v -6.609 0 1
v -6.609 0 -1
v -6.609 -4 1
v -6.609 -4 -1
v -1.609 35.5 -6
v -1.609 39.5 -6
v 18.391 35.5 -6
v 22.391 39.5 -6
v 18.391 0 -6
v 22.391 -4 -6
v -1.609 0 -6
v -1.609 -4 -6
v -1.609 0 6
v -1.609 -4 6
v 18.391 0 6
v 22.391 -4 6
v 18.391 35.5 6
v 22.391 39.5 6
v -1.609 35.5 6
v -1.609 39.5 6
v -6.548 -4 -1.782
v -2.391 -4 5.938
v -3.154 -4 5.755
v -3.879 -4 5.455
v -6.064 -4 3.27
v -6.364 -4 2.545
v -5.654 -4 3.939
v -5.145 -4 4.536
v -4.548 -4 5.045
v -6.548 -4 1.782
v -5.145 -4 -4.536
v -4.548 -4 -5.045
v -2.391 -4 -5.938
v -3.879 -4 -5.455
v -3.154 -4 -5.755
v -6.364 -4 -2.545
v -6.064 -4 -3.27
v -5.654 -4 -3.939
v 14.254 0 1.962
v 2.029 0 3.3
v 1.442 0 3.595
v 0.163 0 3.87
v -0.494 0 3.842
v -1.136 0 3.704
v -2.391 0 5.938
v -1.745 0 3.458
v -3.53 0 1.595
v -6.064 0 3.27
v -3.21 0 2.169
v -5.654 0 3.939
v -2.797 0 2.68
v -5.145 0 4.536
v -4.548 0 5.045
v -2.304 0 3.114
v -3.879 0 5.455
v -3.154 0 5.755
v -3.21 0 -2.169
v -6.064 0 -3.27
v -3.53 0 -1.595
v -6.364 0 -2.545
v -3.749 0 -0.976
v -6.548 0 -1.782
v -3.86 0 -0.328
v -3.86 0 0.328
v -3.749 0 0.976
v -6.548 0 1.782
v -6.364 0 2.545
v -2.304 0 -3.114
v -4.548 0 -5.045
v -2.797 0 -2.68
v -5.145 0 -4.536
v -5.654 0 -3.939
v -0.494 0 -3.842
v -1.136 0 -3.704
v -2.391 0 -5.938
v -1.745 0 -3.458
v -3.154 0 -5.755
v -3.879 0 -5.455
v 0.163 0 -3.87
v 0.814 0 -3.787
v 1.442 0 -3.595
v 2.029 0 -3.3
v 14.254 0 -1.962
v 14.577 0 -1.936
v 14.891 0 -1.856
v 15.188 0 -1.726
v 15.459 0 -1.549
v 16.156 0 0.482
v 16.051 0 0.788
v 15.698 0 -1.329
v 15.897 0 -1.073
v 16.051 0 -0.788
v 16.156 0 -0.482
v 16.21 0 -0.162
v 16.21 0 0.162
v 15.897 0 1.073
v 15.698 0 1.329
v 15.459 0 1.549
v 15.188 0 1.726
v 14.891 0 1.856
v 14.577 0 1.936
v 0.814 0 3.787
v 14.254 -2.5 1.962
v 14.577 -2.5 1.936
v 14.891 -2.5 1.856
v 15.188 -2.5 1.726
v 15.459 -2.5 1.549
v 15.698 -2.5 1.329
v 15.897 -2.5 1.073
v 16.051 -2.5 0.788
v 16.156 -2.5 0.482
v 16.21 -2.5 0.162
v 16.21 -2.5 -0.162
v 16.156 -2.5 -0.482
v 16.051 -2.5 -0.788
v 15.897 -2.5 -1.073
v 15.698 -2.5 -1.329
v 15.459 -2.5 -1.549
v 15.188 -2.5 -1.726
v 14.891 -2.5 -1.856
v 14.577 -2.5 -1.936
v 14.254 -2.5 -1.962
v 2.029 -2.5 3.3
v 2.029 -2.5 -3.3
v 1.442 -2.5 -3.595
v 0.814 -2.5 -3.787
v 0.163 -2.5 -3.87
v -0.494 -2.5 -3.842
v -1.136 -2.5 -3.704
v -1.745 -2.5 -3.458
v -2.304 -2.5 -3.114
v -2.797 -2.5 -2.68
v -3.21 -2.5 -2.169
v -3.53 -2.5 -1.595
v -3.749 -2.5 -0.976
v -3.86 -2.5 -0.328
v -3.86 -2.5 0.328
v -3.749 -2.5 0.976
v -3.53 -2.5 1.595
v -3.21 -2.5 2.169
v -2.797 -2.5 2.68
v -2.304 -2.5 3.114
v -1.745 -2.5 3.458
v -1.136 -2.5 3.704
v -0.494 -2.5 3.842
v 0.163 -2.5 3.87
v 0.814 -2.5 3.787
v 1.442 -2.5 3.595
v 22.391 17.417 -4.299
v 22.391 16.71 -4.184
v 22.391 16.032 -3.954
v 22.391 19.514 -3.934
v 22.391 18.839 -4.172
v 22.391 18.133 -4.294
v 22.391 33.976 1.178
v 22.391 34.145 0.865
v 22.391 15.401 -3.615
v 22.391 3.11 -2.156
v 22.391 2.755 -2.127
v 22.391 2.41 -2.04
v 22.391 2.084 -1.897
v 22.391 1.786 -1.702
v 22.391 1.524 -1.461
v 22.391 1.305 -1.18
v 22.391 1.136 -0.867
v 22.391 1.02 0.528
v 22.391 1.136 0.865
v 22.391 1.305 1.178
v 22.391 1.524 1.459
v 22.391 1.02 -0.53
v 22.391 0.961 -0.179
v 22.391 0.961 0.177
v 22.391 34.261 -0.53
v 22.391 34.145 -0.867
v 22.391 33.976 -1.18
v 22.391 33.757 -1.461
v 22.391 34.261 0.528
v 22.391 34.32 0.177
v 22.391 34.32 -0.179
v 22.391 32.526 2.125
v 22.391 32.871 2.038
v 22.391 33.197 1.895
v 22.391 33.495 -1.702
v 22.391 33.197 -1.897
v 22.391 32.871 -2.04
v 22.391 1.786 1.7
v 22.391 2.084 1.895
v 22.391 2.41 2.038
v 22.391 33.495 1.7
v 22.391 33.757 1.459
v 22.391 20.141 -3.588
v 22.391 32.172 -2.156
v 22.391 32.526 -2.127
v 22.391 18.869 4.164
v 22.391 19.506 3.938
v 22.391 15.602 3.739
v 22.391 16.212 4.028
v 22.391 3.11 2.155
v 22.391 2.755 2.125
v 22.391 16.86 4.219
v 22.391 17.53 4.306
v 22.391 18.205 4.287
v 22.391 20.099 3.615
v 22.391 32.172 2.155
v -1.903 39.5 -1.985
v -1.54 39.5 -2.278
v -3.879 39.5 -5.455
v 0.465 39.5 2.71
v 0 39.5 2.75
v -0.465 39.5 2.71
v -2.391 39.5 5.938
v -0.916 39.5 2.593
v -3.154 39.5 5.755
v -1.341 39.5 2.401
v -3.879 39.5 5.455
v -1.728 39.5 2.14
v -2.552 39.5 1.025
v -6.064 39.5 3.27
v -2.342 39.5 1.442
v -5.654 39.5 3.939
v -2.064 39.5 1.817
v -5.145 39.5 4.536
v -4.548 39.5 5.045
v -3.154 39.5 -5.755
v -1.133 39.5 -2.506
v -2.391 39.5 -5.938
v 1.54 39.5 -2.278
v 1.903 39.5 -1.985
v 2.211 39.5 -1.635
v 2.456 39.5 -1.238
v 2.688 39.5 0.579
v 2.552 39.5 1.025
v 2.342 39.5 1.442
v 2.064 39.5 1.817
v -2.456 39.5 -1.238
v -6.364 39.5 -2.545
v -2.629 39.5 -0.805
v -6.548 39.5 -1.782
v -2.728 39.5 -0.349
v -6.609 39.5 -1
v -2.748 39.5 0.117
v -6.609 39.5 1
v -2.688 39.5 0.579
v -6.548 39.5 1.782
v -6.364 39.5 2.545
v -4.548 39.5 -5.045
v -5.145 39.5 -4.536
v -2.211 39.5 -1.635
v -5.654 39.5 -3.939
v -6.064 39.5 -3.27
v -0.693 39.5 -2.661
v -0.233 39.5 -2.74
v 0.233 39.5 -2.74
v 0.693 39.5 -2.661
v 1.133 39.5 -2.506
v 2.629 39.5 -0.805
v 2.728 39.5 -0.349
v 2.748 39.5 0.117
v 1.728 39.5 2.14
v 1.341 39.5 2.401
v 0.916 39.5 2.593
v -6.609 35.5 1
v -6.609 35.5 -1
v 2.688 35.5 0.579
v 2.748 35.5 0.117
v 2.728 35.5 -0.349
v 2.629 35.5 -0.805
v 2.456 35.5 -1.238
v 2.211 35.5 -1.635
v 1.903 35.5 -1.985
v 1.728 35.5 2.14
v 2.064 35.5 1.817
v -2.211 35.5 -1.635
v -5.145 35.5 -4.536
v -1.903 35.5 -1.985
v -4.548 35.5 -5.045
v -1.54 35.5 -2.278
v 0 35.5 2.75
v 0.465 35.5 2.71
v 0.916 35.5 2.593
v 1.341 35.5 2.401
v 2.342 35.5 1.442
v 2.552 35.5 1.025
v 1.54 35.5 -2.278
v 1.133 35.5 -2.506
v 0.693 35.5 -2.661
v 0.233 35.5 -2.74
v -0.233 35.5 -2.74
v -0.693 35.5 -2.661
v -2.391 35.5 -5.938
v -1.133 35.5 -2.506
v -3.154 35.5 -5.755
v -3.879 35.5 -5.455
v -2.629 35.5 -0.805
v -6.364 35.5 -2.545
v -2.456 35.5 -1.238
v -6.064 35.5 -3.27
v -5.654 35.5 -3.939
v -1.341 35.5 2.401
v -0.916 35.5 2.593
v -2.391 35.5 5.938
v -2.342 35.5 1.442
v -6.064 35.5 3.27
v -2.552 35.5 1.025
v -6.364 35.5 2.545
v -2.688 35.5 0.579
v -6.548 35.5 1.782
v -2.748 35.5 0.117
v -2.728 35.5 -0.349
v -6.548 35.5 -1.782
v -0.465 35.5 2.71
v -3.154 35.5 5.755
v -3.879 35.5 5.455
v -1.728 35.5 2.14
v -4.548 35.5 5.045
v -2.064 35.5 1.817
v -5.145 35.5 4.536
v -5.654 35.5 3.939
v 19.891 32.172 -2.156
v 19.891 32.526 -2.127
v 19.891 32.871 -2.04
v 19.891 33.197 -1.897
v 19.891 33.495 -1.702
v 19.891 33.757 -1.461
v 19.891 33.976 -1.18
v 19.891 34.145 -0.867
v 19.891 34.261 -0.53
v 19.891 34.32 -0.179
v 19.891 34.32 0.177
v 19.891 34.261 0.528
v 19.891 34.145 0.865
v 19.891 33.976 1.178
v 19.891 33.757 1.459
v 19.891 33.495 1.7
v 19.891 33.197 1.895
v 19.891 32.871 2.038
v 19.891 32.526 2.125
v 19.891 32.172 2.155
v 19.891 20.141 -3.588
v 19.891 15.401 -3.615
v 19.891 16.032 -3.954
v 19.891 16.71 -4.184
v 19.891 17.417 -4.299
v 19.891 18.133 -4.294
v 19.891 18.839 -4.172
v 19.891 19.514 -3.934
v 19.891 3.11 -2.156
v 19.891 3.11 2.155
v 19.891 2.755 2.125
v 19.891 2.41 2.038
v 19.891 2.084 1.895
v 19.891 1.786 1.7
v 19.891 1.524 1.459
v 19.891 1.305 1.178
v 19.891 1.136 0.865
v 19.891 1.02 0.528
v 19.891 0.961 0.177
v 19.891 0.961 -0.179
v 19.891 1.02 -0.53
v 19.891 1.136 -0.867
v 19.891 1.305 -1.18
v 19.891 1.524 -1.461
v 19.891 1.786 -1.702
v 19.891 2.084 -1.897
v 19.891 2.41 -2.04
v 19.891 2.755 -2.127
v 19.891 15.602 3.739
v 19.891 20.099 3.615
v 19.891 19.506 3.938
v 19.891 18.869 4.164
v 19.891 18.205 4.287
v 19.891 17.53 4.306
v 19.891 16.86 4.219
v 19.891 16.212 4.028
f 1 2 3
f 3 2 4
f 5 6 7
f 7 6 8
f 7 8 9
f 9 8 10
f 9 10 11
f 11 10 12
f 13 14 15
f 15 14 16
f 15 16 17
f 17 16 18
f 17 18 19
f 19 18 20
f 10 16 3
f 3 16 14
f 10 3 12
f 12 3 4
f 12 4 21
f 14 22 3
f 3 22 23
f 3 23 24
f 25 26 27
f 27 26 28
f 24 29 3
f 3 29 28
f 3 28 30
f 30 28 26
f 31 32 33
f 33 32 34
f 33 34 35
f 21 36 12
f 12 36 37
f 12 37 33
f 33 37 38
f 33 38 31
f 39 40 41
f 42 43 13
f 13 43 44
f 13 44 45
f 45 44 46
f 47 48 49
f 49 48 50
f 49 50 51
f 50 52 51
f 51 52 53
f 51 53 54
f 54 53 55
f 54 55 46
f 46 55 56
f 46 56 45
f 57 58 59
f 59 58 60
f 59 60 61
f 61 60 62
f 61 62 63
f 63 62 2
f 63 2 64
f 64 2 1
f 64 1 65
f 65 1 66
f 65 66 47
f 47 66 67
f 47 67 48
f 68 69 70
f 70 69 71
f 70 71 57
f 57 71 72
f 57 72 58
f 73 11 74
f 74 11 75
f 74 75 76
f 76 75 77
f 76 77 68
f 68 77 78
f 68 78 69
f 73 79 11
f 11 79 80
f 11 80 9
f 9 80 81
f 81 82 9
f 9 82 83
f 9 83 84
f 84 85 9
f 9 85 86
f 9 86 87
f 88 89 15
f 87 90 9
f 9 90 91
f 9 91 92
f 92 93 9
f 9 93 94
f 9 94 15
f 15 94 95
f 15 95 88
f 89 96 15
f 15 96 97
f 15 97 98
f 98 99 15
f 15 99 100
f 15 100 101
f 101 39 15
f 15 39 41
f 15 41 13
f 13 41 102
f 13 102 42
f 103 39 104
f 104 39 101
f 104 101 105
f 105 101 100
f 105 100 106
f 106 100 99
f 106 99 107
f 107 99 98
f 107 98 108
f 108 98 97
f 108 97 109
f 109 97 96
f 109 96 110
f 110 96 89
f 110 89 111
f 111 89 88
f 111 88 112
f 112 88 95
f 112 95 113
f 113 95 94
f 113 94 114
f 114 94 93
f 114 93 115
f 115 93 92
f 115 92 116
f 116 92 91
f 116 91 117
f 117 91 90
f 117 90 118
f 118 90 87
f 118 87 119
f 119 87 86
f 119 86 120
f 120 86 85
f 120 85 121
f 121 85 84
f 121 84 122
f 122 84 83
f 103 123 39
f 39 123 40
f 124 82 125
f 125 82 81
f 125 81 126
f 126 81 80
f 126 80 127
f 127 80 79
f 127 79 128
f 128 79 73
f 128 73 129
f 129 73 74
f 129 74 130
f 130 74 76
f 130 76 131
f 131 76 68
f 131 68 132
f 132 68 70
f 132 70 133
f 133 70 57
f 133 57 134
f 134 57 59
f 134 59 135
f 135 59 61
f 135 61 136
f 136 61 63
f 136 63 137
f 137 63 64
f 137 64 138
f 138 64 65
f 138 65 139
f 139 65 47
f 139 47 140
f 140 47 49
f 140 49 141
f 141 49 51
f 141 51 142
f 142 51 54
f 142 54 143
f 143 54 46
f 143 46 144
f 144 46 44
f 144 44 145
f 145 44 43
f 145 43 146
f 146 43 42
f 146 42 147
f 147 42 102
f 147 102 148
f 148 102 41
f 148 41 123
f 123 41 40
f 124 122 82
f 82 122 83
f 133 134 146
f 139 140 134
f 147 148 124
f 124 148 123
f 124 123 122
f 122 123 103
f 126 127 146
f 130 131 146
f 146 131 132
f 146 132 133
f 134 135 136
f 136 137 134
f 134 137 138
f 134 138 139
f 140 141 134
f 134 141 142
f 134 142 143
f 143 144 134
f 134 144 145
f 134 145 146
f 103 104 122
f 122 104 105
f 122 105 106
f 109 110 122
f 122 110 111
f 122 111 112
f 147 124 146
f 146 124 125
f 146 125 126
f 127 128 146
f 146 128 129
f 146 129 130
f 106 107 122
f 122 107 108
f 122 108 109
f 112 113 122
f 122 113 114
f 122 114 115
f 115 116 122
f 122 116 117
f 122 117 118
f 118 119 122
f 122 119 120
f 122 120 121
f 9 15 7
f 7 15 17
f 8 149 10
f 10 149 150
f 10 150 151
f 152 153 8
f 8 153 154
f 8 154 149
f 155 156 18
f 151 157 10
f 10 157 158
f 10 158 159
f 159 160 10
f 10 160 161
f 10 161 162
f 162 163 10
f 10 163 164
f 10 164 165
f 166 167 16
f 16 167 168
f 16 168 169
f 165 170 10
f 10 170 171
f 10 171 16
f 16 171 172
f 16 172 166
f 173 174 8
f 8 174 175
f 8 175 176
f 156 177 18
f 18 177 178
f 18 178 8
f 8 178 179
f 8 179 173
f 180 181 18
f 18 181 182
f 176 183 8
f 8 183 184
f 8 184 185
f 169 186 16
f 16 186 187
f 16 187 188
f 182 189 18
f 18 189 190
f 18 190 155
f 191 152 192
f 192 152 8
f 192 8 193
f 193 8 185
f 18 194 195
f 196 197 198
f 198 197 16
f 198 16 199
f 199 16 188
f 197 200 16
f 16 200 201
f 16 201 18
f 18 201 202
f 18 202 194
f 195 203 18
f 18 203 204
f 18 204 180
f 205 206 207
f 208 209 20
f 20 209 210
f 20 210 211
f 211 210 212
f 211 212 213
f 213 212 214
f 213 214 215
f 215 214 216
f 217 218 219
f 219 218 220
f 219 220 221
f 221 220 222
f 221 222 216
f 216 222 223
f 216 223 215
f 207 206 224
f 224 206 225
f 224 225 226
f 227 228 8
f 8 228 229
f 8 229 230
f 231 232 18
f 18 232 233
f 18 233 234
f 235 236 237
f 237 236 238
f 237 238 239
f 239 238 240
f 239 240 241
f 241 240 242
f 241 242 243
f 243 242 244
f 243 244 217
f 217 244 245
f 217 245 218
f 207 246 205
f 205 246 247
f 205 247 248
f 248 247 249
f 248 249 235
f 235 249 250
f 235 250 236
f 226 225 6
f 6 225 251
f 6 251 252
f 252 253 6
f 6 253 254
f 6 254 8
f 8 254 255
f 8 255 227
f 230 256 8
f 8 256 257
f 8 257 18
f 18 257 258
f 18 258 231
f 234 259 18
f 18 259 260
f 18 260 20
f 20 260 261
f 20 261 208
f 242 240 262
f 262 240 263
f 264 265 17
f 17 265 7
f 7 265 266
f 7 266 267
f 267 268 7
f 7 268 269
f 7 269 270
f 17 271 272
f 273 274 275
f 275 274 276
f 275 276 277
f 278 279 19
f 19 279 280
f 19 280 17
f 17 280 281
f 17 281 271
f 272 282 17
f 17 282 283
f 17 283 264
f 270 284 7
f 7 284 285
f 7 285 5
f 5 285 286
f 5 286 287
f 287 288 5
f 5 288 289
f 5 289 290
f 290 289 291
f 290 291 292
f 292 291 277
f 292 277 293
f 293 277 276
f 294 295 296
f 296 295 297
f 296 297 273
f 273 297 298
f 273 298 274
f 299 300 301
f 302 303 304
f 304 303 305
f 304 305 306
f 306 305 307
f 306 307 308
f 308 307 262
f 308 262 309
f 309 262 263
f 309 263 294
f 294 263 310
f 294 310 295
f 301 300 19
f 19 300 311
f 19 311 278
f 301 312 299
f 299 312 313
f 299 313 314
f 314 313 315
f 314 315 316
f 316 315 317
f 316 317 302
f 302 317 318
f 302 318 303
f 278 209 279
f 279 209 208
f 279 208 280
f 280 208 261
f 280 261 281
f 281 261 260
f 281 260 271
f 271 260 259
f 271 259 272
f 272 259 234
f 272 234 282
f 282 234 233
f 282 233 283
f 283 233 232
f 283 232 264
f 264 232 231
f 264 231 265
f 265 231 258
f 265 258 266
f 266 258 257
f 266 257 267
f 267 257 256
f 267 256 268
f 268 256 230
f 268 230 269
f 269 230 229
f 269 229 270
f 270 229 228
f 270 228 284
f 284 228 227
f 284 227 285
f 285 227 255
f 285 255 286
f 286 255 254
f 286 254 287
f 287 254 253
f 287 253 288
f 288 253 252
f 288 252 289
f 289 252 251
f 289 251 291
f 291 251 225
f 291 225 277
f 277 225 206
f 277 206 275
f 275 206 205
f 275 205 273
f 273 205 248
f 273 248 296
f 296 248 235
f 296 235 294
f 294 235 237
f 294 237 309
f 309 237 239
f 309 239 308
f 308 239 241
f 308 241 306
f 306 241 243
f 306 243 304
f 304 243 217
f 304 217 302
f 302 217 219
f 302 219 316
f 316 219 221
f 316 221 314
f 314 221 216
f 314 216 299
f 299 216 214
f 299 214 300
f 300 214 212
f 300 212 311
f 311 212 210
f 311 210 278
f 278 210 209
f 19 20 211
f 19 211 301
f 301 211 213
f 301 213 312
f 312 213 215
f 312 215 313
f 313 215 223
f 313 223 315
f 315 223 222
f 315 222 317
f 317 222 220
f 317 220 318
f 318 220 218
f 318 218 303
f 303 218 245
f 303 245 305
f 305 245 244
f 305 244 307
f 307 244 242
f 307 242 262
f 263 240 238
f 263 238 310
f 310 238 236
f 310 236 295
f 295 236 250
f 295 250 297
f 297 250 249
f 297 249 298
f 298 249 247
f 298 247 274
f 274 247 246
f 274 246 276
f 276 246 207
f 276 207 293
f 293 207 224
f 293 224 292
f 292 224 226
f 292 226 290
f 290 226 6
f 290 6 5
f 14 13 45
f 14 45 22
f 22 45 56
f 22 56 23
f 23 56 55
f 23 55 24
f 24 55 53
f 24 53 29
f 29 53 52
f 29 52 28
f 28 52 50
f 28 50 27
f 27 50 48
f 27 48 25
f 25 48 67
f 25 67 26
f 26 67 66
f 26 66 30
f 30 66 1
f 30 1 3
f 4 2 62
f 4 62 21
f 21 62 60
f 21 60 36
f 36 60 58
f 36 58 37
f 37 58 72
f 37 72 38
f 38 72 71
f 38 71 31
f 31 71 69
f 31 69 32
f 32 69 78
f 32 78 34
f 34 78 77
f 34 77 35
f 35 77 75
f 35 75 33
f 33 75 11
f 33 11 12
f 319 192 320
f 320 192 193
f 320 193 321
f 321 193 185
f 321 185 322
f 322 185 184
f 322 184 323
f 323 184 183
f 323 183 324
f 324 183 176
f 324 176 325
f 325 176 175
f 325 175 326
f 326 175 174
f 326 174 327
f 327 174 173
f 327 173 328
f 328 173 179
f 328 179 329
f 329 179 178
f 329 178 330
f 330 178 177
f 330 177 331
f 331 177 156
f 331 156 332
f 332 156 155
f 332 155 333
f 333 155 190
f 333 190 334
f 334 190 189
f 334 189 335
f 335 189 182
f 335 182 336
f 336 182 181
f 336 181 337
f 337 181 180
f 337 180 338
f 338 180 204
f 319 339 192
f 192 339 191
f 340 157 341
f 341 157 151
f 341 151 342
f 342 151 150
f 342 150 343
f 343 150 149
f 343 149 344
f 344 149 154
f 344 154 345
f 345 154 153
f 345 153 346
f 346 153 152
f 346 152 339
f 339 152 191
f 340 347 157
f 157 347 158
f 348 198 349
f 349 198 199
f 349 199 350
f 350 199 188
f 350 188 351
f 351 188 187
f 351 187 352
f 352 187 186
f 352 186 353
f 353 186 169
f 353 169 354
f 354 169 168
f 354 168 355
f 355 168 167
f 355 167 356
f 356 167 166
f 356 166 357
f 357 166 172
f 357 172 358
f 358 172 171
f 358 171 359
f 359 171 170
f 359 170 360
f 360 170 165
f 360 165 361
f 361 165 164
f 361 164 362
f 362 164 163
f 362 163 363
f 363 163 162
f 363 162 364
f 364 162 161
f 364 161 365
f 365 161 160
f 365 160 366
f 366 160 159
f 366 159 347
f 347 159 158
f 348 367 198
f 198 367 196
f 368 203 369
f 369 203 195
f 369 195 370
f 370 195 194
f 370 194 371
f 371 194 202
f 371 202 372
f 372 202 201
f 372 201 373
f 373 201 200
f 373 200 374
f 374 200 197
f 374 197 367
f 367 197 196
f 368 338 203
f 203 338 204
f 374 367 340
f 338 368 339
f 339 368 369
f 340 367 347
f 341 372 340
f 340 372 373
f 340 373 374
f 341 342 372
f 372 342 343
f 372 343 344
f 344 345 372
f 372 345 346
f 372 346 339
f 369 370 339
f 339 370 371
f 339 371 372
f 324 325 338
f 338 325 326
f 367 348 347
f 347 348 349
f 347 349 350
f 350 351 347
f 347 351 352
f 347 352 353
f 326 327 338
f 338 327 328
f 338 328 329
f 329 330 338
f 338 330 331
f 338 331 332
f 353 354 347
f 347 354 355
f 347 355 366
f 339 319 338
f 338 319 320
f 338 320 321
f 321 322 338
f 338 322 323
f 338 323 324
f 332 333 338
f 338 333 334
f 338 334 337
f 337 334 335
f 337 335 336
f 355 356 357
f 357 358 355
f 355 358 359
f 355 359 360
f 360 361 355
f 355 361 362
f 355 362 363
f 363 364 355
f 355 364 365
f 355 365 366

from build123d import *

# Parameters (mm, degrees)
SKETCH3_W           = 25
SKETCH3_H           = 12
BOSS_EXTRUDE1_DEPTH = 4
SINGLE_HORN_DEPTH   = 2.5
SKETCH4_W           = 4
SKETCH4_H           = 12
BOSS_EXTRUDE2_DEPTH = 43.5
SKETCH5_W           = 25
SKETCH5_H           = 12
BOSS_EXTRUDE4_DEPTH = 4
SKETCH6_R           = 2.75
CUT_EXTRUDE3_DEPTH  = 4
FILLET1_R           = 5
DOUBLE_HORN_DEPTH   = 2.5


with BuildPart() as part:
    # Sketch3 → Boss-Extrude1 (new body)
    with BuildSketch(Plane(origin=(0, 0, 0), x_dir=(1, 0, 0), z_dir=(0, 1, 0))):
        with Locations((5.890813757, 0)):
            Rectangle(SKETCH3_W, SKETCH3_H)
    extrude(amount=-BOSS_EXTRUDE1_DEPTH)

    # Sketch1 → single horn (cut)
    with BuildSketch(Plane(origin=(0, 0, 0), x_dir=(1, 0, 0), z_dir=(0, 1, 0))):
        with BuildLine():
            Line((14.254126854, 1.962408156), (2.029090374, 3.299759756))
            ThreePointArc((2.029090374, 3.299759756), (-3.8737091, 0), (2.029090374, -3.299759756))
            Line((2.029090374, -3.299759756), (14.254126854, -1.962408156))
            ThreePointArc((14.254126854, -1.962408156), (16.21653501, 0), (14.254126854, 1.962408156))
        make_face()
    extrude(amount=-SINGLE_HORN_DEPTH, mode=Mode.SUBTRACT)

    # Sketch4 → Boss-Extrude2 (add)
    with BuildSketch(Plane.XZ.offset(4)):
        with Locations((20.390813757, 0)):
            Rectangle(SKETCH4_W, SKETCH4_H)
    extrude(amount=-BOSS_EXTRUDE2_DEPTH)

    # Sketch5 → Boss-Extrude4 (add)
    with BuildSketch(Plane(origin=(0, 39.5, 0), x_dir=(1, 0, 0), z_dir=(0, 1, 0))):
        with Locations((5.890813757, 0)):
            Rectangle(SKETCH5_W, SKETCH5_H)
    extrude(amount=-BOSS_EXTRUDE4_DEPTH)

    # Sketch6 → Cut-Extrude3 (cut)
    with BuildSketch(Plane(origin=(0, 39.5, 0), x_dir=(1, 0, 0), z_dir=(0, 1, 0))):
        Circle(SKETCH6_R)
    extrude(amount=-CUT_EXTRUDE3_DEPTH, mode=Mode.SUBTRACT)

    # Fillet1
    fillet1_edges = [part.edges().sort_by_distance(p)[0] for p in [
        (-6.609186243, 37.5, 6),
        (-6.609186243, 37.5, -6),
        (-6.609186243, -2, -6),
        (-6.609186243, -2, 6),
    ]]
    fillet(fillet1_edges, radius=FILLET1_R)

    # Sketch11 → double horn (cut)
    with BuildSketch(Plane(origin=(22.390813757, 0, 0), x_dir=(0, 0, -1), z_dir=(1, 0, 0))):
        with BuildLine():
            Line((-2.154521604, 32.171561508), (-3.615323039, 20.099129755))
            ThreePointArc((-3.615323039, 20.099129755), (-4.309876098, 17.868064822), (-3.738508691, 15.602321242))
            Line((-3.738508691, 15.602321242), (-2.154521604, 3.109591283))
            ThreePointArc((-2.154521604, 3.109591283), (0.000957171, 0.954112508), (2.156435946, 3.109591283))
            Line((2.156435946, 3.109591283), (3.615323039, 15.400870245))
            ThreePointArc((3.615323039, 15.400870245), (4.311420307, 17.775024288), (3.5878108, 20.140938088))
            Line((3.5878108, 20.140938088), (2.156435946, 32.171561508))
            ThreePointArc((2.156435946, 32.171561508), (0.000957171, 34.327040283), (-2.154521604, 32.171561508))
        make_face()
    extrude(amount=-DOUBLE_HORN_DEPTH, mode=Mode.SUBTRACT)


solid = part.part
